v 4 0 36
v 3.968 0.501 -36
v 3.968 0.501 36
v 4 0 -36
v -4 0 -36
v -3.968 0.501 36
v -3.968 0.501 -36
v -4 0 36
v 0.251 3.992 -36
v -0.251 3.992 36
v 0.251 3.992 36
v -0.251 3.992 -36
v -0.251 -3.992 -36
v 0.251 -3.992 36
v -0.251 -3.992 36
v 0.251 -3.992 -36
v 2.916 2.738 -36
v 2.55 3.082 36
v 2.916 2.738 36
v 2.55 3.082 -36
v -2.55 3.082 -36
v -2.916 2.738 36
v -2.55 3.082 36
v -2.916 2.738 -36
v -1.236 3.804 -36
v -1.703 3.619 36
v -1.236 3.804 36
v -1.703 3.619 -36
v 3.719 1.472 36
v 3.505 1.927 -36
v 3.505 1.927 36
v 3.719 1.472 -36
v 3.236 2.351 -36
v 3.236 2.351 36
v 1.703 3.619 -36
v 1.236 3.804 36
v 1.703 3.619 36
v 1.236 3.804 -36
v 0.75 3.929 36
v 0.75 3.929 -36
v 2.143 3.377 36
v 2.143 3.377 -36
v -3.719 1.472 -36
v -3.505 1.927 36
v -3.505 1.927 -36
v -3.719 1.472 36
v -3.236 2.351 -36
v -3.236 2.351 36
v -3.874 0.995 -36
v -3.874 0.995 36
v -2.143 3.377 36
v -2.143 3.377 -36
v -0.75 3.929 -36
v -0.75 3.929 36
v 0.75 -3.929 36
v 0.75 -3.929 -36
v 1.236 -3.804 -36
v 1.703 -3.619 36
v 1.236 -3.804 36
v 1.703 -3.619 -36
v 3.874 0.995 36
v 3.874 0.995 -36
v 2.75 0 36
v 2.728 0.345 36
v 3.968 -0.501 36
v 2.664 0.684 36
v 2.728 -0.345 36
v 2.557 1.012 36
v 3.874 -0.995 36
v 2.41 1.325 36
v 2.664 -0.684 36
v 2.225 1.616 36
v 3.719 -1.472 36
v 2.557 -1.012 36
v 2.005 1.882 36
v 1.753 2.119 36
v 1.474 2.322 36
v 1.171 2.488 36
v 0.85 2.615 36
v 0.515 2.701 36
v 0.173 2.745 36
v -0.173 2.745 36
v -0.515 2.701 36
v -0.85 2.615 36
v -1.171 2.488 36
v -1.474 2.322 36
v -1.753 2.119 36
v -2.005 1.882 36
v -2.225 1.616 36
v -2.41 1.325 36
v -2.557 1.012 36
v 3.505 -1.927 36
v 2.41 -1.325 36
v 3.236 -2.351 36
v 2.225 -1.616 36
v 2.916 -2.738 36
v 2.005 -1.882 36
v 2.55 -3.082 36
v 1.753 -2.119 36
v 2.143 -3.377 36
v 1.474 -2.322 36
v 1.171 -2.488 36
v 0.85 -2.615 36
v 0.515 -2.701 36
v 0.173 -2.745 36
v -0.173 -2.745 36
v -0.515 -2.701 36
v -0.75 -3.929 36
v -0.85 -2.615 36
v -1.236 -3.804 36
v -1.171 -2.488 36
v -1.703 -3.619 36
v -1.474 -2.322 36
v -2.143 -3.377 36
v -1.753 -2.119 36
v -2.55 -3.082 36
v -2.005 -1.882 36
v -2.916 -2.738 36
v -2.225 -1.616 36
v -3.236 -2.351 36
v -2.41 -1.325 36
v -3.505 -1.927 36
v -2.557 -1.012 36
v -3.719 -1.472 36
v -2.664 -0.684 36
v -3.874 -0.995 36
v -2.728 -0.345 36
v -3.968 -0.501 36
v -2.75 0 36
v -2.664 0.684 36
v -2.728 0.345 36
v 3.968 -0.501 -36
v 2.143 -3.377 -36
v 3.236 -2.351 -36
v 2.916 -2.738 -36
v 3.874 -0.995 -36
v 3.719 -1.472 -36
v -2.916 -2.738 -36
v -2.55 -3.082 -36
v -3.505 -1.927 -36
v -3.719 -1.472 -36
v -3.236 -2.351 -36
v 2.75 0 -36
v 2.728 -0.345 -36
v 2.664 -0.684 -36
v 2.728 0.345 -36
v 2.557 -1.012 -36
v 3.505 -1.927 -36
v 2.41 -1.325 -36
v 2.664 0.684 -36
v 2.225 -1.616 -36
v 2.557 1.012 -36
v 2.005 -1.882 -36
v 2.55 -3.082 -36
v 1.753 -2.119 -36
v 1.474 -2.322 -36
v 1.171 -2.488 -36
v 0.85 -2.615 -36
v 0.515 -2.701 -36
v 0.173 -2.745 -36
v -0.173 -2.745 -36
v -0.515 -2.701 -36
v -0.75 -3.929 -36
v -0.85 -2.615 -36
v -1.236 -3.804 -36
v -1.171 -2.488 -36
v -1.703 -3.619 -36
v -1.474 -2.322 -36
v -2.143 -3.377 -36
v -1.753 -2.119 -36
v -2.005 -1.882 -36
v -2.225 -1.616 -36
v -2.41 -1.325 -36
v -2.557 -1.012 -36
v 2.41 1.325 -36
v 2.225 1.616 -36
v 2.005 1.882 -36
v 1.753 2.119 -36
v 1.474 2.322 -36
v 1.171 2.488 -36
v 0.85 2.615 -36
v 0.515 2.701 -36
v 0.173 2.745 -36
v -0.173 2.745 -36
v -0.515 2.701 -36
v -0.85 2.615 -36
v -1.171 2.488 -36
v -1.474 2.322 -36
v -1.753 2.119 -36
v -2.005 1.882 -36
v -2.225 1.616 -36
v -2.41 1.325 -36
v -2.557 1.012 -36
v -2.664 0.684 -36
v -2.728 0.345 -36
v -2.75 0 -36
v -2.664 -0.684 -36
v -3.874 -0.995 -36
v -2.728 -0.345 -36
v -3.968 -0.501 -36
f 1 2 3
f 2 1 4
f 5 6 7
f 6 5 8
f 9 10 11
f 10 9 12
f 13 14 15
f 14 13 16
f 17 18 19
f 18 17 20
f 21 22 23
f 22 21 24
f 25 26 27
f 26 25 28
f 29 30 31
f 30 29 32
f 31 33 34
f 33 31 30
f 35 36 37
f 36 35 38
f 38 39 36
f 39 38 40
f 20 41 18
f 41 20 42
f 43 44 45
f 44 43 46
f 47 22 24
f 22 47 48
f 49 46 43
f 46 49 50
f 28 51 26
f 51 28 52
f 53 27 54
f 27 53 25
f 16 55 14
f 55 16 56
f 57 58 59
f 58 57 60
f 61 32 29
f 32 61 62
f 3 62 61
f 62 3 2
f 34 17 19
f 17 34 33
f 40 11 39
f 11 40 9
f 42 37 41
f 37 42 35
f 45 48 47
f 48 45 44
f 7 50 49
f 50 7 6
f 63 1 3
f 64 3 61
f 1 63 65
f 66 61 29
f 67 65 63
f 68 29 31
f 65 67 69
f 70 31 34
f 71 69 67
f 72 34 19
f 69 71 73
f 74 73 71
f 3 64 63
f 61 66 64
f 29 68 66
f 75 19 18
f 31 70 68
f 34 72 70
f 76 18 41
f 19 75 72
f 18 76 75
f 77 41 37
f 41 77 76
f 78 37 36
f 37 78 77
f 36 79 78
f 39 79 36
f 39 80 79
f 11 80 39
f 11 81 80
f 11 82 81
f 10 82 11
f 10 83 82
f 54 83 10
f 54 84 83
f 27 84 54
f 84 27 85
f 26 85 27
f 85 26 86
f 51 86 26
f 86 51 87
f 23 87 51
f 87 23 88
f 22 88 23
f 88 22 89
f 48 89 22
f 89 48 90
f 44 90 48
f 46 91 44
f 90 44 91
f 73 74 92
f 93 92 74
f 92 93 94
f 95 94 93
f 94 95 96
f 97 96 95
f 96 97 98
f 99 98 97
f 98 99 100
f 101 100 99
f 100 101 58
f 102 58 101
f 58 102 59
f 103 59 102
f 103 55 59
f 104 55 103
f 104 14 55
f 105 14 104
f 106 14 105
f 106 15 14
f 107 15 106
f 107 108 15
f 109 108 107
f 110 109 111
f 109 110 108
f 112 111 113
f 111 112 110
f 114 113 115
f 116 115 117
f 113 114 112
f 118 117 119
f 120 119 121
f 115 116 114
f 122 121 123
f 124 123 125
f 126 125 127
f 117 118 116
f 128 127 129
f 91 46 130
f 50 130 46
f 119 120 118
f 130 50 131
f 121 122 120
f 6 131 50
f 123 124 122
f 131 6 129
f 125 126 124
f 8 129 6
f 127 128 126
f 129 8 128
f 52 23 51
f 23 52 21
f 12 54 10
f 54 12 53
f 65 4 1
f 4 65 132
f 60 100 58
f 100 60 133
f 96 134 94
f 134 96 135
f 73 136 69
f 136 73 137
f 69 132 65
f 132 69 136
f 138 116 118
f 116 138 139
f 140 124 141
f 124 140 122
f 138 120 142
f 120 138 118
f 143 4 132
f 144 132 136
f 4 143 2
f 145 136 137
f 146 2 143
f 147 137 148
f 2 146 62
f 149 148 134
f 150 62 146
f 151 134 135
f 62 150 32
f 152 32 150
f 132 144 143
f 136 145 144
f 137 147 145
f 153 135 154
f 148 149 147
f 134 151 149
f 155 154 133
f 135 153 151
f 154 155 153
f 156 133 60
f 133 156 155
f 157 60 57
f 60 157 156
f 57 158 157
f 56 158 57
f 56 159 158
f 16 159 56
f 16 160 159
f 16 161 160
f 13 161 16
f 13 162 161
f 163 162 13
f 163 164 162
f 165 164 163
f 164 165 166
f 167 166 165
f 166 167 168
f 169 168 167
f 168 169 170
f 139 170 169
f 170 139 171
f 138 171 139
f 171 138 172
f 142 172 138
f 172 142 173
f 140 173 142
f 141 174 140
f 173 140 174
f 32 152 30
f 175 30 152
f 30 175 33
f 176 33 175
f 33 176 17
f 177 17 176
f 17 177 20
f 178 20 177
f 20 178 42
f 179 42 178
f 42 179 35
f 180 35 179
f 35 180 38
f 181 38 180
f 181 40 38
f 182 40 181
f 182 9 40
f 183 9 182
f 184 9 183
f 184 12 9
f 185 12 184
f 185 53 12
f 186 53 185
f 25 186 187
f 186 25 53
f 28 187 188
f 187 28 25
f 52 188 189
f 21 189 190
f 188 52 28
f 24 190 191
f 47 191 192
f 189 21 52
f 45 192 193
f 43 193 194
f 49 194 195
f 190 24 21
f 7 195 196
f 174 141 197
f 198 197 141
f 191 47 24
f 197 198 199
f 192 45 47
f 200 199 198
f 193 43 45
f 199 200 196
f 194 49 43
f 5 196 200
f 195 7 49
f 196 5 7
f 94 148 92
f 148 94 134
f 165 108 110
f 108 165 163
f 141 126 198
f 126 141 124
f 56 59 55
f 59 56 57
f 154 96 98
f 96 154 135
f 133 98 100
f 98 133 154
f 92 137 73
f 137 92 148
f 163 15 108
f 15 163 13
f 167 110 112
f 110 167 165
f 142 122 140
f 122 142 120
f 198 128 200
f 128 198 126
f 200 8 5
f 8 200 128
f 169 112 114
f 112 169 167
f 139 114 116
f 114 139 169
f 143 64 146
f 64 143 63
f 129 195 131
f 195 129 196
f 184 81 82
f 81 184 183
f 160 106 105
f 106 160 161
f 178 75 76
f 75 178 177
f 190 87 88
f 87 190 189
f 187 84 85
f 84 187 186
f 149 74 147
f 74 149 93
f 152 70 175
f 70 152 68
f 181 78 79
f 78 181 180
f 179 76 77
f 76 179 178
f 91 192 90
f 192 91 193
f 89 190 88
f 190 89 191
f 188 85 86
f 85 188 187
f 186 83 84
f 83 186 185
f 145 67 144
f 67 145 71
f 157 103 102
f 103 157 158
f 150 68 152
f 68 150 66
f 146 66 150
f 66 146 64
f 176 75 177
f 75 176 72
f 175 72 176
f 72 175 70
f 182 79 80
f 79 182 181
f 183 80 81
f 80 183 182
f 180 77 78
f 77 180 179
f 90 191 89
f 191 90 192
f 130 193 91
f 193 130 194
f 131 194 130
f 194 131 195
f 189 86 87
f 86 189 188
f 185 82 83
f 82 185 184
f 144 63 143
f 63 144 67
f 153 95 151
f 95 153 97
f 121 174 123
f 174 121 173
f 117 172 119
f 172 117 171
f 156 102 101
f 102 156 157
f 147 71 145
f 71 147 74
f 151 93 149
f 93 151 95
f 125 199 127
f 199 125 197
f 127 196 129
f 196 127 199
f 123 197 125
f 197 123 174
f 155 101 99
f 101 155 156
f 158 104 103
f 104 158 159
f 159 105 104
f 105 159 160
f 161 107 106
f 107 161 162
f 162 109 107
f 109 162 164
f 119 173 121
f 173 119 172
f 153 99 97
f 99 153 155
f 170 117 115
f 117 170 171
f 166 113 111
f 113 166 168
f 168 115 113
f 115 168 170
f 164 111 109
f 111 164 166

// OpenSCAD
$fn = 50;


difference() {
	union() {
		translate(v = [0, 0, -36.0000000000]) {
			cylinder(h = 72, r = 4.0000000000);
		}
	}
	union() {
		translate(v = [0, 0, -100.0000000000]) {
			cylinder(h = 200, r = 2.7500000000);
		}
	}
}
